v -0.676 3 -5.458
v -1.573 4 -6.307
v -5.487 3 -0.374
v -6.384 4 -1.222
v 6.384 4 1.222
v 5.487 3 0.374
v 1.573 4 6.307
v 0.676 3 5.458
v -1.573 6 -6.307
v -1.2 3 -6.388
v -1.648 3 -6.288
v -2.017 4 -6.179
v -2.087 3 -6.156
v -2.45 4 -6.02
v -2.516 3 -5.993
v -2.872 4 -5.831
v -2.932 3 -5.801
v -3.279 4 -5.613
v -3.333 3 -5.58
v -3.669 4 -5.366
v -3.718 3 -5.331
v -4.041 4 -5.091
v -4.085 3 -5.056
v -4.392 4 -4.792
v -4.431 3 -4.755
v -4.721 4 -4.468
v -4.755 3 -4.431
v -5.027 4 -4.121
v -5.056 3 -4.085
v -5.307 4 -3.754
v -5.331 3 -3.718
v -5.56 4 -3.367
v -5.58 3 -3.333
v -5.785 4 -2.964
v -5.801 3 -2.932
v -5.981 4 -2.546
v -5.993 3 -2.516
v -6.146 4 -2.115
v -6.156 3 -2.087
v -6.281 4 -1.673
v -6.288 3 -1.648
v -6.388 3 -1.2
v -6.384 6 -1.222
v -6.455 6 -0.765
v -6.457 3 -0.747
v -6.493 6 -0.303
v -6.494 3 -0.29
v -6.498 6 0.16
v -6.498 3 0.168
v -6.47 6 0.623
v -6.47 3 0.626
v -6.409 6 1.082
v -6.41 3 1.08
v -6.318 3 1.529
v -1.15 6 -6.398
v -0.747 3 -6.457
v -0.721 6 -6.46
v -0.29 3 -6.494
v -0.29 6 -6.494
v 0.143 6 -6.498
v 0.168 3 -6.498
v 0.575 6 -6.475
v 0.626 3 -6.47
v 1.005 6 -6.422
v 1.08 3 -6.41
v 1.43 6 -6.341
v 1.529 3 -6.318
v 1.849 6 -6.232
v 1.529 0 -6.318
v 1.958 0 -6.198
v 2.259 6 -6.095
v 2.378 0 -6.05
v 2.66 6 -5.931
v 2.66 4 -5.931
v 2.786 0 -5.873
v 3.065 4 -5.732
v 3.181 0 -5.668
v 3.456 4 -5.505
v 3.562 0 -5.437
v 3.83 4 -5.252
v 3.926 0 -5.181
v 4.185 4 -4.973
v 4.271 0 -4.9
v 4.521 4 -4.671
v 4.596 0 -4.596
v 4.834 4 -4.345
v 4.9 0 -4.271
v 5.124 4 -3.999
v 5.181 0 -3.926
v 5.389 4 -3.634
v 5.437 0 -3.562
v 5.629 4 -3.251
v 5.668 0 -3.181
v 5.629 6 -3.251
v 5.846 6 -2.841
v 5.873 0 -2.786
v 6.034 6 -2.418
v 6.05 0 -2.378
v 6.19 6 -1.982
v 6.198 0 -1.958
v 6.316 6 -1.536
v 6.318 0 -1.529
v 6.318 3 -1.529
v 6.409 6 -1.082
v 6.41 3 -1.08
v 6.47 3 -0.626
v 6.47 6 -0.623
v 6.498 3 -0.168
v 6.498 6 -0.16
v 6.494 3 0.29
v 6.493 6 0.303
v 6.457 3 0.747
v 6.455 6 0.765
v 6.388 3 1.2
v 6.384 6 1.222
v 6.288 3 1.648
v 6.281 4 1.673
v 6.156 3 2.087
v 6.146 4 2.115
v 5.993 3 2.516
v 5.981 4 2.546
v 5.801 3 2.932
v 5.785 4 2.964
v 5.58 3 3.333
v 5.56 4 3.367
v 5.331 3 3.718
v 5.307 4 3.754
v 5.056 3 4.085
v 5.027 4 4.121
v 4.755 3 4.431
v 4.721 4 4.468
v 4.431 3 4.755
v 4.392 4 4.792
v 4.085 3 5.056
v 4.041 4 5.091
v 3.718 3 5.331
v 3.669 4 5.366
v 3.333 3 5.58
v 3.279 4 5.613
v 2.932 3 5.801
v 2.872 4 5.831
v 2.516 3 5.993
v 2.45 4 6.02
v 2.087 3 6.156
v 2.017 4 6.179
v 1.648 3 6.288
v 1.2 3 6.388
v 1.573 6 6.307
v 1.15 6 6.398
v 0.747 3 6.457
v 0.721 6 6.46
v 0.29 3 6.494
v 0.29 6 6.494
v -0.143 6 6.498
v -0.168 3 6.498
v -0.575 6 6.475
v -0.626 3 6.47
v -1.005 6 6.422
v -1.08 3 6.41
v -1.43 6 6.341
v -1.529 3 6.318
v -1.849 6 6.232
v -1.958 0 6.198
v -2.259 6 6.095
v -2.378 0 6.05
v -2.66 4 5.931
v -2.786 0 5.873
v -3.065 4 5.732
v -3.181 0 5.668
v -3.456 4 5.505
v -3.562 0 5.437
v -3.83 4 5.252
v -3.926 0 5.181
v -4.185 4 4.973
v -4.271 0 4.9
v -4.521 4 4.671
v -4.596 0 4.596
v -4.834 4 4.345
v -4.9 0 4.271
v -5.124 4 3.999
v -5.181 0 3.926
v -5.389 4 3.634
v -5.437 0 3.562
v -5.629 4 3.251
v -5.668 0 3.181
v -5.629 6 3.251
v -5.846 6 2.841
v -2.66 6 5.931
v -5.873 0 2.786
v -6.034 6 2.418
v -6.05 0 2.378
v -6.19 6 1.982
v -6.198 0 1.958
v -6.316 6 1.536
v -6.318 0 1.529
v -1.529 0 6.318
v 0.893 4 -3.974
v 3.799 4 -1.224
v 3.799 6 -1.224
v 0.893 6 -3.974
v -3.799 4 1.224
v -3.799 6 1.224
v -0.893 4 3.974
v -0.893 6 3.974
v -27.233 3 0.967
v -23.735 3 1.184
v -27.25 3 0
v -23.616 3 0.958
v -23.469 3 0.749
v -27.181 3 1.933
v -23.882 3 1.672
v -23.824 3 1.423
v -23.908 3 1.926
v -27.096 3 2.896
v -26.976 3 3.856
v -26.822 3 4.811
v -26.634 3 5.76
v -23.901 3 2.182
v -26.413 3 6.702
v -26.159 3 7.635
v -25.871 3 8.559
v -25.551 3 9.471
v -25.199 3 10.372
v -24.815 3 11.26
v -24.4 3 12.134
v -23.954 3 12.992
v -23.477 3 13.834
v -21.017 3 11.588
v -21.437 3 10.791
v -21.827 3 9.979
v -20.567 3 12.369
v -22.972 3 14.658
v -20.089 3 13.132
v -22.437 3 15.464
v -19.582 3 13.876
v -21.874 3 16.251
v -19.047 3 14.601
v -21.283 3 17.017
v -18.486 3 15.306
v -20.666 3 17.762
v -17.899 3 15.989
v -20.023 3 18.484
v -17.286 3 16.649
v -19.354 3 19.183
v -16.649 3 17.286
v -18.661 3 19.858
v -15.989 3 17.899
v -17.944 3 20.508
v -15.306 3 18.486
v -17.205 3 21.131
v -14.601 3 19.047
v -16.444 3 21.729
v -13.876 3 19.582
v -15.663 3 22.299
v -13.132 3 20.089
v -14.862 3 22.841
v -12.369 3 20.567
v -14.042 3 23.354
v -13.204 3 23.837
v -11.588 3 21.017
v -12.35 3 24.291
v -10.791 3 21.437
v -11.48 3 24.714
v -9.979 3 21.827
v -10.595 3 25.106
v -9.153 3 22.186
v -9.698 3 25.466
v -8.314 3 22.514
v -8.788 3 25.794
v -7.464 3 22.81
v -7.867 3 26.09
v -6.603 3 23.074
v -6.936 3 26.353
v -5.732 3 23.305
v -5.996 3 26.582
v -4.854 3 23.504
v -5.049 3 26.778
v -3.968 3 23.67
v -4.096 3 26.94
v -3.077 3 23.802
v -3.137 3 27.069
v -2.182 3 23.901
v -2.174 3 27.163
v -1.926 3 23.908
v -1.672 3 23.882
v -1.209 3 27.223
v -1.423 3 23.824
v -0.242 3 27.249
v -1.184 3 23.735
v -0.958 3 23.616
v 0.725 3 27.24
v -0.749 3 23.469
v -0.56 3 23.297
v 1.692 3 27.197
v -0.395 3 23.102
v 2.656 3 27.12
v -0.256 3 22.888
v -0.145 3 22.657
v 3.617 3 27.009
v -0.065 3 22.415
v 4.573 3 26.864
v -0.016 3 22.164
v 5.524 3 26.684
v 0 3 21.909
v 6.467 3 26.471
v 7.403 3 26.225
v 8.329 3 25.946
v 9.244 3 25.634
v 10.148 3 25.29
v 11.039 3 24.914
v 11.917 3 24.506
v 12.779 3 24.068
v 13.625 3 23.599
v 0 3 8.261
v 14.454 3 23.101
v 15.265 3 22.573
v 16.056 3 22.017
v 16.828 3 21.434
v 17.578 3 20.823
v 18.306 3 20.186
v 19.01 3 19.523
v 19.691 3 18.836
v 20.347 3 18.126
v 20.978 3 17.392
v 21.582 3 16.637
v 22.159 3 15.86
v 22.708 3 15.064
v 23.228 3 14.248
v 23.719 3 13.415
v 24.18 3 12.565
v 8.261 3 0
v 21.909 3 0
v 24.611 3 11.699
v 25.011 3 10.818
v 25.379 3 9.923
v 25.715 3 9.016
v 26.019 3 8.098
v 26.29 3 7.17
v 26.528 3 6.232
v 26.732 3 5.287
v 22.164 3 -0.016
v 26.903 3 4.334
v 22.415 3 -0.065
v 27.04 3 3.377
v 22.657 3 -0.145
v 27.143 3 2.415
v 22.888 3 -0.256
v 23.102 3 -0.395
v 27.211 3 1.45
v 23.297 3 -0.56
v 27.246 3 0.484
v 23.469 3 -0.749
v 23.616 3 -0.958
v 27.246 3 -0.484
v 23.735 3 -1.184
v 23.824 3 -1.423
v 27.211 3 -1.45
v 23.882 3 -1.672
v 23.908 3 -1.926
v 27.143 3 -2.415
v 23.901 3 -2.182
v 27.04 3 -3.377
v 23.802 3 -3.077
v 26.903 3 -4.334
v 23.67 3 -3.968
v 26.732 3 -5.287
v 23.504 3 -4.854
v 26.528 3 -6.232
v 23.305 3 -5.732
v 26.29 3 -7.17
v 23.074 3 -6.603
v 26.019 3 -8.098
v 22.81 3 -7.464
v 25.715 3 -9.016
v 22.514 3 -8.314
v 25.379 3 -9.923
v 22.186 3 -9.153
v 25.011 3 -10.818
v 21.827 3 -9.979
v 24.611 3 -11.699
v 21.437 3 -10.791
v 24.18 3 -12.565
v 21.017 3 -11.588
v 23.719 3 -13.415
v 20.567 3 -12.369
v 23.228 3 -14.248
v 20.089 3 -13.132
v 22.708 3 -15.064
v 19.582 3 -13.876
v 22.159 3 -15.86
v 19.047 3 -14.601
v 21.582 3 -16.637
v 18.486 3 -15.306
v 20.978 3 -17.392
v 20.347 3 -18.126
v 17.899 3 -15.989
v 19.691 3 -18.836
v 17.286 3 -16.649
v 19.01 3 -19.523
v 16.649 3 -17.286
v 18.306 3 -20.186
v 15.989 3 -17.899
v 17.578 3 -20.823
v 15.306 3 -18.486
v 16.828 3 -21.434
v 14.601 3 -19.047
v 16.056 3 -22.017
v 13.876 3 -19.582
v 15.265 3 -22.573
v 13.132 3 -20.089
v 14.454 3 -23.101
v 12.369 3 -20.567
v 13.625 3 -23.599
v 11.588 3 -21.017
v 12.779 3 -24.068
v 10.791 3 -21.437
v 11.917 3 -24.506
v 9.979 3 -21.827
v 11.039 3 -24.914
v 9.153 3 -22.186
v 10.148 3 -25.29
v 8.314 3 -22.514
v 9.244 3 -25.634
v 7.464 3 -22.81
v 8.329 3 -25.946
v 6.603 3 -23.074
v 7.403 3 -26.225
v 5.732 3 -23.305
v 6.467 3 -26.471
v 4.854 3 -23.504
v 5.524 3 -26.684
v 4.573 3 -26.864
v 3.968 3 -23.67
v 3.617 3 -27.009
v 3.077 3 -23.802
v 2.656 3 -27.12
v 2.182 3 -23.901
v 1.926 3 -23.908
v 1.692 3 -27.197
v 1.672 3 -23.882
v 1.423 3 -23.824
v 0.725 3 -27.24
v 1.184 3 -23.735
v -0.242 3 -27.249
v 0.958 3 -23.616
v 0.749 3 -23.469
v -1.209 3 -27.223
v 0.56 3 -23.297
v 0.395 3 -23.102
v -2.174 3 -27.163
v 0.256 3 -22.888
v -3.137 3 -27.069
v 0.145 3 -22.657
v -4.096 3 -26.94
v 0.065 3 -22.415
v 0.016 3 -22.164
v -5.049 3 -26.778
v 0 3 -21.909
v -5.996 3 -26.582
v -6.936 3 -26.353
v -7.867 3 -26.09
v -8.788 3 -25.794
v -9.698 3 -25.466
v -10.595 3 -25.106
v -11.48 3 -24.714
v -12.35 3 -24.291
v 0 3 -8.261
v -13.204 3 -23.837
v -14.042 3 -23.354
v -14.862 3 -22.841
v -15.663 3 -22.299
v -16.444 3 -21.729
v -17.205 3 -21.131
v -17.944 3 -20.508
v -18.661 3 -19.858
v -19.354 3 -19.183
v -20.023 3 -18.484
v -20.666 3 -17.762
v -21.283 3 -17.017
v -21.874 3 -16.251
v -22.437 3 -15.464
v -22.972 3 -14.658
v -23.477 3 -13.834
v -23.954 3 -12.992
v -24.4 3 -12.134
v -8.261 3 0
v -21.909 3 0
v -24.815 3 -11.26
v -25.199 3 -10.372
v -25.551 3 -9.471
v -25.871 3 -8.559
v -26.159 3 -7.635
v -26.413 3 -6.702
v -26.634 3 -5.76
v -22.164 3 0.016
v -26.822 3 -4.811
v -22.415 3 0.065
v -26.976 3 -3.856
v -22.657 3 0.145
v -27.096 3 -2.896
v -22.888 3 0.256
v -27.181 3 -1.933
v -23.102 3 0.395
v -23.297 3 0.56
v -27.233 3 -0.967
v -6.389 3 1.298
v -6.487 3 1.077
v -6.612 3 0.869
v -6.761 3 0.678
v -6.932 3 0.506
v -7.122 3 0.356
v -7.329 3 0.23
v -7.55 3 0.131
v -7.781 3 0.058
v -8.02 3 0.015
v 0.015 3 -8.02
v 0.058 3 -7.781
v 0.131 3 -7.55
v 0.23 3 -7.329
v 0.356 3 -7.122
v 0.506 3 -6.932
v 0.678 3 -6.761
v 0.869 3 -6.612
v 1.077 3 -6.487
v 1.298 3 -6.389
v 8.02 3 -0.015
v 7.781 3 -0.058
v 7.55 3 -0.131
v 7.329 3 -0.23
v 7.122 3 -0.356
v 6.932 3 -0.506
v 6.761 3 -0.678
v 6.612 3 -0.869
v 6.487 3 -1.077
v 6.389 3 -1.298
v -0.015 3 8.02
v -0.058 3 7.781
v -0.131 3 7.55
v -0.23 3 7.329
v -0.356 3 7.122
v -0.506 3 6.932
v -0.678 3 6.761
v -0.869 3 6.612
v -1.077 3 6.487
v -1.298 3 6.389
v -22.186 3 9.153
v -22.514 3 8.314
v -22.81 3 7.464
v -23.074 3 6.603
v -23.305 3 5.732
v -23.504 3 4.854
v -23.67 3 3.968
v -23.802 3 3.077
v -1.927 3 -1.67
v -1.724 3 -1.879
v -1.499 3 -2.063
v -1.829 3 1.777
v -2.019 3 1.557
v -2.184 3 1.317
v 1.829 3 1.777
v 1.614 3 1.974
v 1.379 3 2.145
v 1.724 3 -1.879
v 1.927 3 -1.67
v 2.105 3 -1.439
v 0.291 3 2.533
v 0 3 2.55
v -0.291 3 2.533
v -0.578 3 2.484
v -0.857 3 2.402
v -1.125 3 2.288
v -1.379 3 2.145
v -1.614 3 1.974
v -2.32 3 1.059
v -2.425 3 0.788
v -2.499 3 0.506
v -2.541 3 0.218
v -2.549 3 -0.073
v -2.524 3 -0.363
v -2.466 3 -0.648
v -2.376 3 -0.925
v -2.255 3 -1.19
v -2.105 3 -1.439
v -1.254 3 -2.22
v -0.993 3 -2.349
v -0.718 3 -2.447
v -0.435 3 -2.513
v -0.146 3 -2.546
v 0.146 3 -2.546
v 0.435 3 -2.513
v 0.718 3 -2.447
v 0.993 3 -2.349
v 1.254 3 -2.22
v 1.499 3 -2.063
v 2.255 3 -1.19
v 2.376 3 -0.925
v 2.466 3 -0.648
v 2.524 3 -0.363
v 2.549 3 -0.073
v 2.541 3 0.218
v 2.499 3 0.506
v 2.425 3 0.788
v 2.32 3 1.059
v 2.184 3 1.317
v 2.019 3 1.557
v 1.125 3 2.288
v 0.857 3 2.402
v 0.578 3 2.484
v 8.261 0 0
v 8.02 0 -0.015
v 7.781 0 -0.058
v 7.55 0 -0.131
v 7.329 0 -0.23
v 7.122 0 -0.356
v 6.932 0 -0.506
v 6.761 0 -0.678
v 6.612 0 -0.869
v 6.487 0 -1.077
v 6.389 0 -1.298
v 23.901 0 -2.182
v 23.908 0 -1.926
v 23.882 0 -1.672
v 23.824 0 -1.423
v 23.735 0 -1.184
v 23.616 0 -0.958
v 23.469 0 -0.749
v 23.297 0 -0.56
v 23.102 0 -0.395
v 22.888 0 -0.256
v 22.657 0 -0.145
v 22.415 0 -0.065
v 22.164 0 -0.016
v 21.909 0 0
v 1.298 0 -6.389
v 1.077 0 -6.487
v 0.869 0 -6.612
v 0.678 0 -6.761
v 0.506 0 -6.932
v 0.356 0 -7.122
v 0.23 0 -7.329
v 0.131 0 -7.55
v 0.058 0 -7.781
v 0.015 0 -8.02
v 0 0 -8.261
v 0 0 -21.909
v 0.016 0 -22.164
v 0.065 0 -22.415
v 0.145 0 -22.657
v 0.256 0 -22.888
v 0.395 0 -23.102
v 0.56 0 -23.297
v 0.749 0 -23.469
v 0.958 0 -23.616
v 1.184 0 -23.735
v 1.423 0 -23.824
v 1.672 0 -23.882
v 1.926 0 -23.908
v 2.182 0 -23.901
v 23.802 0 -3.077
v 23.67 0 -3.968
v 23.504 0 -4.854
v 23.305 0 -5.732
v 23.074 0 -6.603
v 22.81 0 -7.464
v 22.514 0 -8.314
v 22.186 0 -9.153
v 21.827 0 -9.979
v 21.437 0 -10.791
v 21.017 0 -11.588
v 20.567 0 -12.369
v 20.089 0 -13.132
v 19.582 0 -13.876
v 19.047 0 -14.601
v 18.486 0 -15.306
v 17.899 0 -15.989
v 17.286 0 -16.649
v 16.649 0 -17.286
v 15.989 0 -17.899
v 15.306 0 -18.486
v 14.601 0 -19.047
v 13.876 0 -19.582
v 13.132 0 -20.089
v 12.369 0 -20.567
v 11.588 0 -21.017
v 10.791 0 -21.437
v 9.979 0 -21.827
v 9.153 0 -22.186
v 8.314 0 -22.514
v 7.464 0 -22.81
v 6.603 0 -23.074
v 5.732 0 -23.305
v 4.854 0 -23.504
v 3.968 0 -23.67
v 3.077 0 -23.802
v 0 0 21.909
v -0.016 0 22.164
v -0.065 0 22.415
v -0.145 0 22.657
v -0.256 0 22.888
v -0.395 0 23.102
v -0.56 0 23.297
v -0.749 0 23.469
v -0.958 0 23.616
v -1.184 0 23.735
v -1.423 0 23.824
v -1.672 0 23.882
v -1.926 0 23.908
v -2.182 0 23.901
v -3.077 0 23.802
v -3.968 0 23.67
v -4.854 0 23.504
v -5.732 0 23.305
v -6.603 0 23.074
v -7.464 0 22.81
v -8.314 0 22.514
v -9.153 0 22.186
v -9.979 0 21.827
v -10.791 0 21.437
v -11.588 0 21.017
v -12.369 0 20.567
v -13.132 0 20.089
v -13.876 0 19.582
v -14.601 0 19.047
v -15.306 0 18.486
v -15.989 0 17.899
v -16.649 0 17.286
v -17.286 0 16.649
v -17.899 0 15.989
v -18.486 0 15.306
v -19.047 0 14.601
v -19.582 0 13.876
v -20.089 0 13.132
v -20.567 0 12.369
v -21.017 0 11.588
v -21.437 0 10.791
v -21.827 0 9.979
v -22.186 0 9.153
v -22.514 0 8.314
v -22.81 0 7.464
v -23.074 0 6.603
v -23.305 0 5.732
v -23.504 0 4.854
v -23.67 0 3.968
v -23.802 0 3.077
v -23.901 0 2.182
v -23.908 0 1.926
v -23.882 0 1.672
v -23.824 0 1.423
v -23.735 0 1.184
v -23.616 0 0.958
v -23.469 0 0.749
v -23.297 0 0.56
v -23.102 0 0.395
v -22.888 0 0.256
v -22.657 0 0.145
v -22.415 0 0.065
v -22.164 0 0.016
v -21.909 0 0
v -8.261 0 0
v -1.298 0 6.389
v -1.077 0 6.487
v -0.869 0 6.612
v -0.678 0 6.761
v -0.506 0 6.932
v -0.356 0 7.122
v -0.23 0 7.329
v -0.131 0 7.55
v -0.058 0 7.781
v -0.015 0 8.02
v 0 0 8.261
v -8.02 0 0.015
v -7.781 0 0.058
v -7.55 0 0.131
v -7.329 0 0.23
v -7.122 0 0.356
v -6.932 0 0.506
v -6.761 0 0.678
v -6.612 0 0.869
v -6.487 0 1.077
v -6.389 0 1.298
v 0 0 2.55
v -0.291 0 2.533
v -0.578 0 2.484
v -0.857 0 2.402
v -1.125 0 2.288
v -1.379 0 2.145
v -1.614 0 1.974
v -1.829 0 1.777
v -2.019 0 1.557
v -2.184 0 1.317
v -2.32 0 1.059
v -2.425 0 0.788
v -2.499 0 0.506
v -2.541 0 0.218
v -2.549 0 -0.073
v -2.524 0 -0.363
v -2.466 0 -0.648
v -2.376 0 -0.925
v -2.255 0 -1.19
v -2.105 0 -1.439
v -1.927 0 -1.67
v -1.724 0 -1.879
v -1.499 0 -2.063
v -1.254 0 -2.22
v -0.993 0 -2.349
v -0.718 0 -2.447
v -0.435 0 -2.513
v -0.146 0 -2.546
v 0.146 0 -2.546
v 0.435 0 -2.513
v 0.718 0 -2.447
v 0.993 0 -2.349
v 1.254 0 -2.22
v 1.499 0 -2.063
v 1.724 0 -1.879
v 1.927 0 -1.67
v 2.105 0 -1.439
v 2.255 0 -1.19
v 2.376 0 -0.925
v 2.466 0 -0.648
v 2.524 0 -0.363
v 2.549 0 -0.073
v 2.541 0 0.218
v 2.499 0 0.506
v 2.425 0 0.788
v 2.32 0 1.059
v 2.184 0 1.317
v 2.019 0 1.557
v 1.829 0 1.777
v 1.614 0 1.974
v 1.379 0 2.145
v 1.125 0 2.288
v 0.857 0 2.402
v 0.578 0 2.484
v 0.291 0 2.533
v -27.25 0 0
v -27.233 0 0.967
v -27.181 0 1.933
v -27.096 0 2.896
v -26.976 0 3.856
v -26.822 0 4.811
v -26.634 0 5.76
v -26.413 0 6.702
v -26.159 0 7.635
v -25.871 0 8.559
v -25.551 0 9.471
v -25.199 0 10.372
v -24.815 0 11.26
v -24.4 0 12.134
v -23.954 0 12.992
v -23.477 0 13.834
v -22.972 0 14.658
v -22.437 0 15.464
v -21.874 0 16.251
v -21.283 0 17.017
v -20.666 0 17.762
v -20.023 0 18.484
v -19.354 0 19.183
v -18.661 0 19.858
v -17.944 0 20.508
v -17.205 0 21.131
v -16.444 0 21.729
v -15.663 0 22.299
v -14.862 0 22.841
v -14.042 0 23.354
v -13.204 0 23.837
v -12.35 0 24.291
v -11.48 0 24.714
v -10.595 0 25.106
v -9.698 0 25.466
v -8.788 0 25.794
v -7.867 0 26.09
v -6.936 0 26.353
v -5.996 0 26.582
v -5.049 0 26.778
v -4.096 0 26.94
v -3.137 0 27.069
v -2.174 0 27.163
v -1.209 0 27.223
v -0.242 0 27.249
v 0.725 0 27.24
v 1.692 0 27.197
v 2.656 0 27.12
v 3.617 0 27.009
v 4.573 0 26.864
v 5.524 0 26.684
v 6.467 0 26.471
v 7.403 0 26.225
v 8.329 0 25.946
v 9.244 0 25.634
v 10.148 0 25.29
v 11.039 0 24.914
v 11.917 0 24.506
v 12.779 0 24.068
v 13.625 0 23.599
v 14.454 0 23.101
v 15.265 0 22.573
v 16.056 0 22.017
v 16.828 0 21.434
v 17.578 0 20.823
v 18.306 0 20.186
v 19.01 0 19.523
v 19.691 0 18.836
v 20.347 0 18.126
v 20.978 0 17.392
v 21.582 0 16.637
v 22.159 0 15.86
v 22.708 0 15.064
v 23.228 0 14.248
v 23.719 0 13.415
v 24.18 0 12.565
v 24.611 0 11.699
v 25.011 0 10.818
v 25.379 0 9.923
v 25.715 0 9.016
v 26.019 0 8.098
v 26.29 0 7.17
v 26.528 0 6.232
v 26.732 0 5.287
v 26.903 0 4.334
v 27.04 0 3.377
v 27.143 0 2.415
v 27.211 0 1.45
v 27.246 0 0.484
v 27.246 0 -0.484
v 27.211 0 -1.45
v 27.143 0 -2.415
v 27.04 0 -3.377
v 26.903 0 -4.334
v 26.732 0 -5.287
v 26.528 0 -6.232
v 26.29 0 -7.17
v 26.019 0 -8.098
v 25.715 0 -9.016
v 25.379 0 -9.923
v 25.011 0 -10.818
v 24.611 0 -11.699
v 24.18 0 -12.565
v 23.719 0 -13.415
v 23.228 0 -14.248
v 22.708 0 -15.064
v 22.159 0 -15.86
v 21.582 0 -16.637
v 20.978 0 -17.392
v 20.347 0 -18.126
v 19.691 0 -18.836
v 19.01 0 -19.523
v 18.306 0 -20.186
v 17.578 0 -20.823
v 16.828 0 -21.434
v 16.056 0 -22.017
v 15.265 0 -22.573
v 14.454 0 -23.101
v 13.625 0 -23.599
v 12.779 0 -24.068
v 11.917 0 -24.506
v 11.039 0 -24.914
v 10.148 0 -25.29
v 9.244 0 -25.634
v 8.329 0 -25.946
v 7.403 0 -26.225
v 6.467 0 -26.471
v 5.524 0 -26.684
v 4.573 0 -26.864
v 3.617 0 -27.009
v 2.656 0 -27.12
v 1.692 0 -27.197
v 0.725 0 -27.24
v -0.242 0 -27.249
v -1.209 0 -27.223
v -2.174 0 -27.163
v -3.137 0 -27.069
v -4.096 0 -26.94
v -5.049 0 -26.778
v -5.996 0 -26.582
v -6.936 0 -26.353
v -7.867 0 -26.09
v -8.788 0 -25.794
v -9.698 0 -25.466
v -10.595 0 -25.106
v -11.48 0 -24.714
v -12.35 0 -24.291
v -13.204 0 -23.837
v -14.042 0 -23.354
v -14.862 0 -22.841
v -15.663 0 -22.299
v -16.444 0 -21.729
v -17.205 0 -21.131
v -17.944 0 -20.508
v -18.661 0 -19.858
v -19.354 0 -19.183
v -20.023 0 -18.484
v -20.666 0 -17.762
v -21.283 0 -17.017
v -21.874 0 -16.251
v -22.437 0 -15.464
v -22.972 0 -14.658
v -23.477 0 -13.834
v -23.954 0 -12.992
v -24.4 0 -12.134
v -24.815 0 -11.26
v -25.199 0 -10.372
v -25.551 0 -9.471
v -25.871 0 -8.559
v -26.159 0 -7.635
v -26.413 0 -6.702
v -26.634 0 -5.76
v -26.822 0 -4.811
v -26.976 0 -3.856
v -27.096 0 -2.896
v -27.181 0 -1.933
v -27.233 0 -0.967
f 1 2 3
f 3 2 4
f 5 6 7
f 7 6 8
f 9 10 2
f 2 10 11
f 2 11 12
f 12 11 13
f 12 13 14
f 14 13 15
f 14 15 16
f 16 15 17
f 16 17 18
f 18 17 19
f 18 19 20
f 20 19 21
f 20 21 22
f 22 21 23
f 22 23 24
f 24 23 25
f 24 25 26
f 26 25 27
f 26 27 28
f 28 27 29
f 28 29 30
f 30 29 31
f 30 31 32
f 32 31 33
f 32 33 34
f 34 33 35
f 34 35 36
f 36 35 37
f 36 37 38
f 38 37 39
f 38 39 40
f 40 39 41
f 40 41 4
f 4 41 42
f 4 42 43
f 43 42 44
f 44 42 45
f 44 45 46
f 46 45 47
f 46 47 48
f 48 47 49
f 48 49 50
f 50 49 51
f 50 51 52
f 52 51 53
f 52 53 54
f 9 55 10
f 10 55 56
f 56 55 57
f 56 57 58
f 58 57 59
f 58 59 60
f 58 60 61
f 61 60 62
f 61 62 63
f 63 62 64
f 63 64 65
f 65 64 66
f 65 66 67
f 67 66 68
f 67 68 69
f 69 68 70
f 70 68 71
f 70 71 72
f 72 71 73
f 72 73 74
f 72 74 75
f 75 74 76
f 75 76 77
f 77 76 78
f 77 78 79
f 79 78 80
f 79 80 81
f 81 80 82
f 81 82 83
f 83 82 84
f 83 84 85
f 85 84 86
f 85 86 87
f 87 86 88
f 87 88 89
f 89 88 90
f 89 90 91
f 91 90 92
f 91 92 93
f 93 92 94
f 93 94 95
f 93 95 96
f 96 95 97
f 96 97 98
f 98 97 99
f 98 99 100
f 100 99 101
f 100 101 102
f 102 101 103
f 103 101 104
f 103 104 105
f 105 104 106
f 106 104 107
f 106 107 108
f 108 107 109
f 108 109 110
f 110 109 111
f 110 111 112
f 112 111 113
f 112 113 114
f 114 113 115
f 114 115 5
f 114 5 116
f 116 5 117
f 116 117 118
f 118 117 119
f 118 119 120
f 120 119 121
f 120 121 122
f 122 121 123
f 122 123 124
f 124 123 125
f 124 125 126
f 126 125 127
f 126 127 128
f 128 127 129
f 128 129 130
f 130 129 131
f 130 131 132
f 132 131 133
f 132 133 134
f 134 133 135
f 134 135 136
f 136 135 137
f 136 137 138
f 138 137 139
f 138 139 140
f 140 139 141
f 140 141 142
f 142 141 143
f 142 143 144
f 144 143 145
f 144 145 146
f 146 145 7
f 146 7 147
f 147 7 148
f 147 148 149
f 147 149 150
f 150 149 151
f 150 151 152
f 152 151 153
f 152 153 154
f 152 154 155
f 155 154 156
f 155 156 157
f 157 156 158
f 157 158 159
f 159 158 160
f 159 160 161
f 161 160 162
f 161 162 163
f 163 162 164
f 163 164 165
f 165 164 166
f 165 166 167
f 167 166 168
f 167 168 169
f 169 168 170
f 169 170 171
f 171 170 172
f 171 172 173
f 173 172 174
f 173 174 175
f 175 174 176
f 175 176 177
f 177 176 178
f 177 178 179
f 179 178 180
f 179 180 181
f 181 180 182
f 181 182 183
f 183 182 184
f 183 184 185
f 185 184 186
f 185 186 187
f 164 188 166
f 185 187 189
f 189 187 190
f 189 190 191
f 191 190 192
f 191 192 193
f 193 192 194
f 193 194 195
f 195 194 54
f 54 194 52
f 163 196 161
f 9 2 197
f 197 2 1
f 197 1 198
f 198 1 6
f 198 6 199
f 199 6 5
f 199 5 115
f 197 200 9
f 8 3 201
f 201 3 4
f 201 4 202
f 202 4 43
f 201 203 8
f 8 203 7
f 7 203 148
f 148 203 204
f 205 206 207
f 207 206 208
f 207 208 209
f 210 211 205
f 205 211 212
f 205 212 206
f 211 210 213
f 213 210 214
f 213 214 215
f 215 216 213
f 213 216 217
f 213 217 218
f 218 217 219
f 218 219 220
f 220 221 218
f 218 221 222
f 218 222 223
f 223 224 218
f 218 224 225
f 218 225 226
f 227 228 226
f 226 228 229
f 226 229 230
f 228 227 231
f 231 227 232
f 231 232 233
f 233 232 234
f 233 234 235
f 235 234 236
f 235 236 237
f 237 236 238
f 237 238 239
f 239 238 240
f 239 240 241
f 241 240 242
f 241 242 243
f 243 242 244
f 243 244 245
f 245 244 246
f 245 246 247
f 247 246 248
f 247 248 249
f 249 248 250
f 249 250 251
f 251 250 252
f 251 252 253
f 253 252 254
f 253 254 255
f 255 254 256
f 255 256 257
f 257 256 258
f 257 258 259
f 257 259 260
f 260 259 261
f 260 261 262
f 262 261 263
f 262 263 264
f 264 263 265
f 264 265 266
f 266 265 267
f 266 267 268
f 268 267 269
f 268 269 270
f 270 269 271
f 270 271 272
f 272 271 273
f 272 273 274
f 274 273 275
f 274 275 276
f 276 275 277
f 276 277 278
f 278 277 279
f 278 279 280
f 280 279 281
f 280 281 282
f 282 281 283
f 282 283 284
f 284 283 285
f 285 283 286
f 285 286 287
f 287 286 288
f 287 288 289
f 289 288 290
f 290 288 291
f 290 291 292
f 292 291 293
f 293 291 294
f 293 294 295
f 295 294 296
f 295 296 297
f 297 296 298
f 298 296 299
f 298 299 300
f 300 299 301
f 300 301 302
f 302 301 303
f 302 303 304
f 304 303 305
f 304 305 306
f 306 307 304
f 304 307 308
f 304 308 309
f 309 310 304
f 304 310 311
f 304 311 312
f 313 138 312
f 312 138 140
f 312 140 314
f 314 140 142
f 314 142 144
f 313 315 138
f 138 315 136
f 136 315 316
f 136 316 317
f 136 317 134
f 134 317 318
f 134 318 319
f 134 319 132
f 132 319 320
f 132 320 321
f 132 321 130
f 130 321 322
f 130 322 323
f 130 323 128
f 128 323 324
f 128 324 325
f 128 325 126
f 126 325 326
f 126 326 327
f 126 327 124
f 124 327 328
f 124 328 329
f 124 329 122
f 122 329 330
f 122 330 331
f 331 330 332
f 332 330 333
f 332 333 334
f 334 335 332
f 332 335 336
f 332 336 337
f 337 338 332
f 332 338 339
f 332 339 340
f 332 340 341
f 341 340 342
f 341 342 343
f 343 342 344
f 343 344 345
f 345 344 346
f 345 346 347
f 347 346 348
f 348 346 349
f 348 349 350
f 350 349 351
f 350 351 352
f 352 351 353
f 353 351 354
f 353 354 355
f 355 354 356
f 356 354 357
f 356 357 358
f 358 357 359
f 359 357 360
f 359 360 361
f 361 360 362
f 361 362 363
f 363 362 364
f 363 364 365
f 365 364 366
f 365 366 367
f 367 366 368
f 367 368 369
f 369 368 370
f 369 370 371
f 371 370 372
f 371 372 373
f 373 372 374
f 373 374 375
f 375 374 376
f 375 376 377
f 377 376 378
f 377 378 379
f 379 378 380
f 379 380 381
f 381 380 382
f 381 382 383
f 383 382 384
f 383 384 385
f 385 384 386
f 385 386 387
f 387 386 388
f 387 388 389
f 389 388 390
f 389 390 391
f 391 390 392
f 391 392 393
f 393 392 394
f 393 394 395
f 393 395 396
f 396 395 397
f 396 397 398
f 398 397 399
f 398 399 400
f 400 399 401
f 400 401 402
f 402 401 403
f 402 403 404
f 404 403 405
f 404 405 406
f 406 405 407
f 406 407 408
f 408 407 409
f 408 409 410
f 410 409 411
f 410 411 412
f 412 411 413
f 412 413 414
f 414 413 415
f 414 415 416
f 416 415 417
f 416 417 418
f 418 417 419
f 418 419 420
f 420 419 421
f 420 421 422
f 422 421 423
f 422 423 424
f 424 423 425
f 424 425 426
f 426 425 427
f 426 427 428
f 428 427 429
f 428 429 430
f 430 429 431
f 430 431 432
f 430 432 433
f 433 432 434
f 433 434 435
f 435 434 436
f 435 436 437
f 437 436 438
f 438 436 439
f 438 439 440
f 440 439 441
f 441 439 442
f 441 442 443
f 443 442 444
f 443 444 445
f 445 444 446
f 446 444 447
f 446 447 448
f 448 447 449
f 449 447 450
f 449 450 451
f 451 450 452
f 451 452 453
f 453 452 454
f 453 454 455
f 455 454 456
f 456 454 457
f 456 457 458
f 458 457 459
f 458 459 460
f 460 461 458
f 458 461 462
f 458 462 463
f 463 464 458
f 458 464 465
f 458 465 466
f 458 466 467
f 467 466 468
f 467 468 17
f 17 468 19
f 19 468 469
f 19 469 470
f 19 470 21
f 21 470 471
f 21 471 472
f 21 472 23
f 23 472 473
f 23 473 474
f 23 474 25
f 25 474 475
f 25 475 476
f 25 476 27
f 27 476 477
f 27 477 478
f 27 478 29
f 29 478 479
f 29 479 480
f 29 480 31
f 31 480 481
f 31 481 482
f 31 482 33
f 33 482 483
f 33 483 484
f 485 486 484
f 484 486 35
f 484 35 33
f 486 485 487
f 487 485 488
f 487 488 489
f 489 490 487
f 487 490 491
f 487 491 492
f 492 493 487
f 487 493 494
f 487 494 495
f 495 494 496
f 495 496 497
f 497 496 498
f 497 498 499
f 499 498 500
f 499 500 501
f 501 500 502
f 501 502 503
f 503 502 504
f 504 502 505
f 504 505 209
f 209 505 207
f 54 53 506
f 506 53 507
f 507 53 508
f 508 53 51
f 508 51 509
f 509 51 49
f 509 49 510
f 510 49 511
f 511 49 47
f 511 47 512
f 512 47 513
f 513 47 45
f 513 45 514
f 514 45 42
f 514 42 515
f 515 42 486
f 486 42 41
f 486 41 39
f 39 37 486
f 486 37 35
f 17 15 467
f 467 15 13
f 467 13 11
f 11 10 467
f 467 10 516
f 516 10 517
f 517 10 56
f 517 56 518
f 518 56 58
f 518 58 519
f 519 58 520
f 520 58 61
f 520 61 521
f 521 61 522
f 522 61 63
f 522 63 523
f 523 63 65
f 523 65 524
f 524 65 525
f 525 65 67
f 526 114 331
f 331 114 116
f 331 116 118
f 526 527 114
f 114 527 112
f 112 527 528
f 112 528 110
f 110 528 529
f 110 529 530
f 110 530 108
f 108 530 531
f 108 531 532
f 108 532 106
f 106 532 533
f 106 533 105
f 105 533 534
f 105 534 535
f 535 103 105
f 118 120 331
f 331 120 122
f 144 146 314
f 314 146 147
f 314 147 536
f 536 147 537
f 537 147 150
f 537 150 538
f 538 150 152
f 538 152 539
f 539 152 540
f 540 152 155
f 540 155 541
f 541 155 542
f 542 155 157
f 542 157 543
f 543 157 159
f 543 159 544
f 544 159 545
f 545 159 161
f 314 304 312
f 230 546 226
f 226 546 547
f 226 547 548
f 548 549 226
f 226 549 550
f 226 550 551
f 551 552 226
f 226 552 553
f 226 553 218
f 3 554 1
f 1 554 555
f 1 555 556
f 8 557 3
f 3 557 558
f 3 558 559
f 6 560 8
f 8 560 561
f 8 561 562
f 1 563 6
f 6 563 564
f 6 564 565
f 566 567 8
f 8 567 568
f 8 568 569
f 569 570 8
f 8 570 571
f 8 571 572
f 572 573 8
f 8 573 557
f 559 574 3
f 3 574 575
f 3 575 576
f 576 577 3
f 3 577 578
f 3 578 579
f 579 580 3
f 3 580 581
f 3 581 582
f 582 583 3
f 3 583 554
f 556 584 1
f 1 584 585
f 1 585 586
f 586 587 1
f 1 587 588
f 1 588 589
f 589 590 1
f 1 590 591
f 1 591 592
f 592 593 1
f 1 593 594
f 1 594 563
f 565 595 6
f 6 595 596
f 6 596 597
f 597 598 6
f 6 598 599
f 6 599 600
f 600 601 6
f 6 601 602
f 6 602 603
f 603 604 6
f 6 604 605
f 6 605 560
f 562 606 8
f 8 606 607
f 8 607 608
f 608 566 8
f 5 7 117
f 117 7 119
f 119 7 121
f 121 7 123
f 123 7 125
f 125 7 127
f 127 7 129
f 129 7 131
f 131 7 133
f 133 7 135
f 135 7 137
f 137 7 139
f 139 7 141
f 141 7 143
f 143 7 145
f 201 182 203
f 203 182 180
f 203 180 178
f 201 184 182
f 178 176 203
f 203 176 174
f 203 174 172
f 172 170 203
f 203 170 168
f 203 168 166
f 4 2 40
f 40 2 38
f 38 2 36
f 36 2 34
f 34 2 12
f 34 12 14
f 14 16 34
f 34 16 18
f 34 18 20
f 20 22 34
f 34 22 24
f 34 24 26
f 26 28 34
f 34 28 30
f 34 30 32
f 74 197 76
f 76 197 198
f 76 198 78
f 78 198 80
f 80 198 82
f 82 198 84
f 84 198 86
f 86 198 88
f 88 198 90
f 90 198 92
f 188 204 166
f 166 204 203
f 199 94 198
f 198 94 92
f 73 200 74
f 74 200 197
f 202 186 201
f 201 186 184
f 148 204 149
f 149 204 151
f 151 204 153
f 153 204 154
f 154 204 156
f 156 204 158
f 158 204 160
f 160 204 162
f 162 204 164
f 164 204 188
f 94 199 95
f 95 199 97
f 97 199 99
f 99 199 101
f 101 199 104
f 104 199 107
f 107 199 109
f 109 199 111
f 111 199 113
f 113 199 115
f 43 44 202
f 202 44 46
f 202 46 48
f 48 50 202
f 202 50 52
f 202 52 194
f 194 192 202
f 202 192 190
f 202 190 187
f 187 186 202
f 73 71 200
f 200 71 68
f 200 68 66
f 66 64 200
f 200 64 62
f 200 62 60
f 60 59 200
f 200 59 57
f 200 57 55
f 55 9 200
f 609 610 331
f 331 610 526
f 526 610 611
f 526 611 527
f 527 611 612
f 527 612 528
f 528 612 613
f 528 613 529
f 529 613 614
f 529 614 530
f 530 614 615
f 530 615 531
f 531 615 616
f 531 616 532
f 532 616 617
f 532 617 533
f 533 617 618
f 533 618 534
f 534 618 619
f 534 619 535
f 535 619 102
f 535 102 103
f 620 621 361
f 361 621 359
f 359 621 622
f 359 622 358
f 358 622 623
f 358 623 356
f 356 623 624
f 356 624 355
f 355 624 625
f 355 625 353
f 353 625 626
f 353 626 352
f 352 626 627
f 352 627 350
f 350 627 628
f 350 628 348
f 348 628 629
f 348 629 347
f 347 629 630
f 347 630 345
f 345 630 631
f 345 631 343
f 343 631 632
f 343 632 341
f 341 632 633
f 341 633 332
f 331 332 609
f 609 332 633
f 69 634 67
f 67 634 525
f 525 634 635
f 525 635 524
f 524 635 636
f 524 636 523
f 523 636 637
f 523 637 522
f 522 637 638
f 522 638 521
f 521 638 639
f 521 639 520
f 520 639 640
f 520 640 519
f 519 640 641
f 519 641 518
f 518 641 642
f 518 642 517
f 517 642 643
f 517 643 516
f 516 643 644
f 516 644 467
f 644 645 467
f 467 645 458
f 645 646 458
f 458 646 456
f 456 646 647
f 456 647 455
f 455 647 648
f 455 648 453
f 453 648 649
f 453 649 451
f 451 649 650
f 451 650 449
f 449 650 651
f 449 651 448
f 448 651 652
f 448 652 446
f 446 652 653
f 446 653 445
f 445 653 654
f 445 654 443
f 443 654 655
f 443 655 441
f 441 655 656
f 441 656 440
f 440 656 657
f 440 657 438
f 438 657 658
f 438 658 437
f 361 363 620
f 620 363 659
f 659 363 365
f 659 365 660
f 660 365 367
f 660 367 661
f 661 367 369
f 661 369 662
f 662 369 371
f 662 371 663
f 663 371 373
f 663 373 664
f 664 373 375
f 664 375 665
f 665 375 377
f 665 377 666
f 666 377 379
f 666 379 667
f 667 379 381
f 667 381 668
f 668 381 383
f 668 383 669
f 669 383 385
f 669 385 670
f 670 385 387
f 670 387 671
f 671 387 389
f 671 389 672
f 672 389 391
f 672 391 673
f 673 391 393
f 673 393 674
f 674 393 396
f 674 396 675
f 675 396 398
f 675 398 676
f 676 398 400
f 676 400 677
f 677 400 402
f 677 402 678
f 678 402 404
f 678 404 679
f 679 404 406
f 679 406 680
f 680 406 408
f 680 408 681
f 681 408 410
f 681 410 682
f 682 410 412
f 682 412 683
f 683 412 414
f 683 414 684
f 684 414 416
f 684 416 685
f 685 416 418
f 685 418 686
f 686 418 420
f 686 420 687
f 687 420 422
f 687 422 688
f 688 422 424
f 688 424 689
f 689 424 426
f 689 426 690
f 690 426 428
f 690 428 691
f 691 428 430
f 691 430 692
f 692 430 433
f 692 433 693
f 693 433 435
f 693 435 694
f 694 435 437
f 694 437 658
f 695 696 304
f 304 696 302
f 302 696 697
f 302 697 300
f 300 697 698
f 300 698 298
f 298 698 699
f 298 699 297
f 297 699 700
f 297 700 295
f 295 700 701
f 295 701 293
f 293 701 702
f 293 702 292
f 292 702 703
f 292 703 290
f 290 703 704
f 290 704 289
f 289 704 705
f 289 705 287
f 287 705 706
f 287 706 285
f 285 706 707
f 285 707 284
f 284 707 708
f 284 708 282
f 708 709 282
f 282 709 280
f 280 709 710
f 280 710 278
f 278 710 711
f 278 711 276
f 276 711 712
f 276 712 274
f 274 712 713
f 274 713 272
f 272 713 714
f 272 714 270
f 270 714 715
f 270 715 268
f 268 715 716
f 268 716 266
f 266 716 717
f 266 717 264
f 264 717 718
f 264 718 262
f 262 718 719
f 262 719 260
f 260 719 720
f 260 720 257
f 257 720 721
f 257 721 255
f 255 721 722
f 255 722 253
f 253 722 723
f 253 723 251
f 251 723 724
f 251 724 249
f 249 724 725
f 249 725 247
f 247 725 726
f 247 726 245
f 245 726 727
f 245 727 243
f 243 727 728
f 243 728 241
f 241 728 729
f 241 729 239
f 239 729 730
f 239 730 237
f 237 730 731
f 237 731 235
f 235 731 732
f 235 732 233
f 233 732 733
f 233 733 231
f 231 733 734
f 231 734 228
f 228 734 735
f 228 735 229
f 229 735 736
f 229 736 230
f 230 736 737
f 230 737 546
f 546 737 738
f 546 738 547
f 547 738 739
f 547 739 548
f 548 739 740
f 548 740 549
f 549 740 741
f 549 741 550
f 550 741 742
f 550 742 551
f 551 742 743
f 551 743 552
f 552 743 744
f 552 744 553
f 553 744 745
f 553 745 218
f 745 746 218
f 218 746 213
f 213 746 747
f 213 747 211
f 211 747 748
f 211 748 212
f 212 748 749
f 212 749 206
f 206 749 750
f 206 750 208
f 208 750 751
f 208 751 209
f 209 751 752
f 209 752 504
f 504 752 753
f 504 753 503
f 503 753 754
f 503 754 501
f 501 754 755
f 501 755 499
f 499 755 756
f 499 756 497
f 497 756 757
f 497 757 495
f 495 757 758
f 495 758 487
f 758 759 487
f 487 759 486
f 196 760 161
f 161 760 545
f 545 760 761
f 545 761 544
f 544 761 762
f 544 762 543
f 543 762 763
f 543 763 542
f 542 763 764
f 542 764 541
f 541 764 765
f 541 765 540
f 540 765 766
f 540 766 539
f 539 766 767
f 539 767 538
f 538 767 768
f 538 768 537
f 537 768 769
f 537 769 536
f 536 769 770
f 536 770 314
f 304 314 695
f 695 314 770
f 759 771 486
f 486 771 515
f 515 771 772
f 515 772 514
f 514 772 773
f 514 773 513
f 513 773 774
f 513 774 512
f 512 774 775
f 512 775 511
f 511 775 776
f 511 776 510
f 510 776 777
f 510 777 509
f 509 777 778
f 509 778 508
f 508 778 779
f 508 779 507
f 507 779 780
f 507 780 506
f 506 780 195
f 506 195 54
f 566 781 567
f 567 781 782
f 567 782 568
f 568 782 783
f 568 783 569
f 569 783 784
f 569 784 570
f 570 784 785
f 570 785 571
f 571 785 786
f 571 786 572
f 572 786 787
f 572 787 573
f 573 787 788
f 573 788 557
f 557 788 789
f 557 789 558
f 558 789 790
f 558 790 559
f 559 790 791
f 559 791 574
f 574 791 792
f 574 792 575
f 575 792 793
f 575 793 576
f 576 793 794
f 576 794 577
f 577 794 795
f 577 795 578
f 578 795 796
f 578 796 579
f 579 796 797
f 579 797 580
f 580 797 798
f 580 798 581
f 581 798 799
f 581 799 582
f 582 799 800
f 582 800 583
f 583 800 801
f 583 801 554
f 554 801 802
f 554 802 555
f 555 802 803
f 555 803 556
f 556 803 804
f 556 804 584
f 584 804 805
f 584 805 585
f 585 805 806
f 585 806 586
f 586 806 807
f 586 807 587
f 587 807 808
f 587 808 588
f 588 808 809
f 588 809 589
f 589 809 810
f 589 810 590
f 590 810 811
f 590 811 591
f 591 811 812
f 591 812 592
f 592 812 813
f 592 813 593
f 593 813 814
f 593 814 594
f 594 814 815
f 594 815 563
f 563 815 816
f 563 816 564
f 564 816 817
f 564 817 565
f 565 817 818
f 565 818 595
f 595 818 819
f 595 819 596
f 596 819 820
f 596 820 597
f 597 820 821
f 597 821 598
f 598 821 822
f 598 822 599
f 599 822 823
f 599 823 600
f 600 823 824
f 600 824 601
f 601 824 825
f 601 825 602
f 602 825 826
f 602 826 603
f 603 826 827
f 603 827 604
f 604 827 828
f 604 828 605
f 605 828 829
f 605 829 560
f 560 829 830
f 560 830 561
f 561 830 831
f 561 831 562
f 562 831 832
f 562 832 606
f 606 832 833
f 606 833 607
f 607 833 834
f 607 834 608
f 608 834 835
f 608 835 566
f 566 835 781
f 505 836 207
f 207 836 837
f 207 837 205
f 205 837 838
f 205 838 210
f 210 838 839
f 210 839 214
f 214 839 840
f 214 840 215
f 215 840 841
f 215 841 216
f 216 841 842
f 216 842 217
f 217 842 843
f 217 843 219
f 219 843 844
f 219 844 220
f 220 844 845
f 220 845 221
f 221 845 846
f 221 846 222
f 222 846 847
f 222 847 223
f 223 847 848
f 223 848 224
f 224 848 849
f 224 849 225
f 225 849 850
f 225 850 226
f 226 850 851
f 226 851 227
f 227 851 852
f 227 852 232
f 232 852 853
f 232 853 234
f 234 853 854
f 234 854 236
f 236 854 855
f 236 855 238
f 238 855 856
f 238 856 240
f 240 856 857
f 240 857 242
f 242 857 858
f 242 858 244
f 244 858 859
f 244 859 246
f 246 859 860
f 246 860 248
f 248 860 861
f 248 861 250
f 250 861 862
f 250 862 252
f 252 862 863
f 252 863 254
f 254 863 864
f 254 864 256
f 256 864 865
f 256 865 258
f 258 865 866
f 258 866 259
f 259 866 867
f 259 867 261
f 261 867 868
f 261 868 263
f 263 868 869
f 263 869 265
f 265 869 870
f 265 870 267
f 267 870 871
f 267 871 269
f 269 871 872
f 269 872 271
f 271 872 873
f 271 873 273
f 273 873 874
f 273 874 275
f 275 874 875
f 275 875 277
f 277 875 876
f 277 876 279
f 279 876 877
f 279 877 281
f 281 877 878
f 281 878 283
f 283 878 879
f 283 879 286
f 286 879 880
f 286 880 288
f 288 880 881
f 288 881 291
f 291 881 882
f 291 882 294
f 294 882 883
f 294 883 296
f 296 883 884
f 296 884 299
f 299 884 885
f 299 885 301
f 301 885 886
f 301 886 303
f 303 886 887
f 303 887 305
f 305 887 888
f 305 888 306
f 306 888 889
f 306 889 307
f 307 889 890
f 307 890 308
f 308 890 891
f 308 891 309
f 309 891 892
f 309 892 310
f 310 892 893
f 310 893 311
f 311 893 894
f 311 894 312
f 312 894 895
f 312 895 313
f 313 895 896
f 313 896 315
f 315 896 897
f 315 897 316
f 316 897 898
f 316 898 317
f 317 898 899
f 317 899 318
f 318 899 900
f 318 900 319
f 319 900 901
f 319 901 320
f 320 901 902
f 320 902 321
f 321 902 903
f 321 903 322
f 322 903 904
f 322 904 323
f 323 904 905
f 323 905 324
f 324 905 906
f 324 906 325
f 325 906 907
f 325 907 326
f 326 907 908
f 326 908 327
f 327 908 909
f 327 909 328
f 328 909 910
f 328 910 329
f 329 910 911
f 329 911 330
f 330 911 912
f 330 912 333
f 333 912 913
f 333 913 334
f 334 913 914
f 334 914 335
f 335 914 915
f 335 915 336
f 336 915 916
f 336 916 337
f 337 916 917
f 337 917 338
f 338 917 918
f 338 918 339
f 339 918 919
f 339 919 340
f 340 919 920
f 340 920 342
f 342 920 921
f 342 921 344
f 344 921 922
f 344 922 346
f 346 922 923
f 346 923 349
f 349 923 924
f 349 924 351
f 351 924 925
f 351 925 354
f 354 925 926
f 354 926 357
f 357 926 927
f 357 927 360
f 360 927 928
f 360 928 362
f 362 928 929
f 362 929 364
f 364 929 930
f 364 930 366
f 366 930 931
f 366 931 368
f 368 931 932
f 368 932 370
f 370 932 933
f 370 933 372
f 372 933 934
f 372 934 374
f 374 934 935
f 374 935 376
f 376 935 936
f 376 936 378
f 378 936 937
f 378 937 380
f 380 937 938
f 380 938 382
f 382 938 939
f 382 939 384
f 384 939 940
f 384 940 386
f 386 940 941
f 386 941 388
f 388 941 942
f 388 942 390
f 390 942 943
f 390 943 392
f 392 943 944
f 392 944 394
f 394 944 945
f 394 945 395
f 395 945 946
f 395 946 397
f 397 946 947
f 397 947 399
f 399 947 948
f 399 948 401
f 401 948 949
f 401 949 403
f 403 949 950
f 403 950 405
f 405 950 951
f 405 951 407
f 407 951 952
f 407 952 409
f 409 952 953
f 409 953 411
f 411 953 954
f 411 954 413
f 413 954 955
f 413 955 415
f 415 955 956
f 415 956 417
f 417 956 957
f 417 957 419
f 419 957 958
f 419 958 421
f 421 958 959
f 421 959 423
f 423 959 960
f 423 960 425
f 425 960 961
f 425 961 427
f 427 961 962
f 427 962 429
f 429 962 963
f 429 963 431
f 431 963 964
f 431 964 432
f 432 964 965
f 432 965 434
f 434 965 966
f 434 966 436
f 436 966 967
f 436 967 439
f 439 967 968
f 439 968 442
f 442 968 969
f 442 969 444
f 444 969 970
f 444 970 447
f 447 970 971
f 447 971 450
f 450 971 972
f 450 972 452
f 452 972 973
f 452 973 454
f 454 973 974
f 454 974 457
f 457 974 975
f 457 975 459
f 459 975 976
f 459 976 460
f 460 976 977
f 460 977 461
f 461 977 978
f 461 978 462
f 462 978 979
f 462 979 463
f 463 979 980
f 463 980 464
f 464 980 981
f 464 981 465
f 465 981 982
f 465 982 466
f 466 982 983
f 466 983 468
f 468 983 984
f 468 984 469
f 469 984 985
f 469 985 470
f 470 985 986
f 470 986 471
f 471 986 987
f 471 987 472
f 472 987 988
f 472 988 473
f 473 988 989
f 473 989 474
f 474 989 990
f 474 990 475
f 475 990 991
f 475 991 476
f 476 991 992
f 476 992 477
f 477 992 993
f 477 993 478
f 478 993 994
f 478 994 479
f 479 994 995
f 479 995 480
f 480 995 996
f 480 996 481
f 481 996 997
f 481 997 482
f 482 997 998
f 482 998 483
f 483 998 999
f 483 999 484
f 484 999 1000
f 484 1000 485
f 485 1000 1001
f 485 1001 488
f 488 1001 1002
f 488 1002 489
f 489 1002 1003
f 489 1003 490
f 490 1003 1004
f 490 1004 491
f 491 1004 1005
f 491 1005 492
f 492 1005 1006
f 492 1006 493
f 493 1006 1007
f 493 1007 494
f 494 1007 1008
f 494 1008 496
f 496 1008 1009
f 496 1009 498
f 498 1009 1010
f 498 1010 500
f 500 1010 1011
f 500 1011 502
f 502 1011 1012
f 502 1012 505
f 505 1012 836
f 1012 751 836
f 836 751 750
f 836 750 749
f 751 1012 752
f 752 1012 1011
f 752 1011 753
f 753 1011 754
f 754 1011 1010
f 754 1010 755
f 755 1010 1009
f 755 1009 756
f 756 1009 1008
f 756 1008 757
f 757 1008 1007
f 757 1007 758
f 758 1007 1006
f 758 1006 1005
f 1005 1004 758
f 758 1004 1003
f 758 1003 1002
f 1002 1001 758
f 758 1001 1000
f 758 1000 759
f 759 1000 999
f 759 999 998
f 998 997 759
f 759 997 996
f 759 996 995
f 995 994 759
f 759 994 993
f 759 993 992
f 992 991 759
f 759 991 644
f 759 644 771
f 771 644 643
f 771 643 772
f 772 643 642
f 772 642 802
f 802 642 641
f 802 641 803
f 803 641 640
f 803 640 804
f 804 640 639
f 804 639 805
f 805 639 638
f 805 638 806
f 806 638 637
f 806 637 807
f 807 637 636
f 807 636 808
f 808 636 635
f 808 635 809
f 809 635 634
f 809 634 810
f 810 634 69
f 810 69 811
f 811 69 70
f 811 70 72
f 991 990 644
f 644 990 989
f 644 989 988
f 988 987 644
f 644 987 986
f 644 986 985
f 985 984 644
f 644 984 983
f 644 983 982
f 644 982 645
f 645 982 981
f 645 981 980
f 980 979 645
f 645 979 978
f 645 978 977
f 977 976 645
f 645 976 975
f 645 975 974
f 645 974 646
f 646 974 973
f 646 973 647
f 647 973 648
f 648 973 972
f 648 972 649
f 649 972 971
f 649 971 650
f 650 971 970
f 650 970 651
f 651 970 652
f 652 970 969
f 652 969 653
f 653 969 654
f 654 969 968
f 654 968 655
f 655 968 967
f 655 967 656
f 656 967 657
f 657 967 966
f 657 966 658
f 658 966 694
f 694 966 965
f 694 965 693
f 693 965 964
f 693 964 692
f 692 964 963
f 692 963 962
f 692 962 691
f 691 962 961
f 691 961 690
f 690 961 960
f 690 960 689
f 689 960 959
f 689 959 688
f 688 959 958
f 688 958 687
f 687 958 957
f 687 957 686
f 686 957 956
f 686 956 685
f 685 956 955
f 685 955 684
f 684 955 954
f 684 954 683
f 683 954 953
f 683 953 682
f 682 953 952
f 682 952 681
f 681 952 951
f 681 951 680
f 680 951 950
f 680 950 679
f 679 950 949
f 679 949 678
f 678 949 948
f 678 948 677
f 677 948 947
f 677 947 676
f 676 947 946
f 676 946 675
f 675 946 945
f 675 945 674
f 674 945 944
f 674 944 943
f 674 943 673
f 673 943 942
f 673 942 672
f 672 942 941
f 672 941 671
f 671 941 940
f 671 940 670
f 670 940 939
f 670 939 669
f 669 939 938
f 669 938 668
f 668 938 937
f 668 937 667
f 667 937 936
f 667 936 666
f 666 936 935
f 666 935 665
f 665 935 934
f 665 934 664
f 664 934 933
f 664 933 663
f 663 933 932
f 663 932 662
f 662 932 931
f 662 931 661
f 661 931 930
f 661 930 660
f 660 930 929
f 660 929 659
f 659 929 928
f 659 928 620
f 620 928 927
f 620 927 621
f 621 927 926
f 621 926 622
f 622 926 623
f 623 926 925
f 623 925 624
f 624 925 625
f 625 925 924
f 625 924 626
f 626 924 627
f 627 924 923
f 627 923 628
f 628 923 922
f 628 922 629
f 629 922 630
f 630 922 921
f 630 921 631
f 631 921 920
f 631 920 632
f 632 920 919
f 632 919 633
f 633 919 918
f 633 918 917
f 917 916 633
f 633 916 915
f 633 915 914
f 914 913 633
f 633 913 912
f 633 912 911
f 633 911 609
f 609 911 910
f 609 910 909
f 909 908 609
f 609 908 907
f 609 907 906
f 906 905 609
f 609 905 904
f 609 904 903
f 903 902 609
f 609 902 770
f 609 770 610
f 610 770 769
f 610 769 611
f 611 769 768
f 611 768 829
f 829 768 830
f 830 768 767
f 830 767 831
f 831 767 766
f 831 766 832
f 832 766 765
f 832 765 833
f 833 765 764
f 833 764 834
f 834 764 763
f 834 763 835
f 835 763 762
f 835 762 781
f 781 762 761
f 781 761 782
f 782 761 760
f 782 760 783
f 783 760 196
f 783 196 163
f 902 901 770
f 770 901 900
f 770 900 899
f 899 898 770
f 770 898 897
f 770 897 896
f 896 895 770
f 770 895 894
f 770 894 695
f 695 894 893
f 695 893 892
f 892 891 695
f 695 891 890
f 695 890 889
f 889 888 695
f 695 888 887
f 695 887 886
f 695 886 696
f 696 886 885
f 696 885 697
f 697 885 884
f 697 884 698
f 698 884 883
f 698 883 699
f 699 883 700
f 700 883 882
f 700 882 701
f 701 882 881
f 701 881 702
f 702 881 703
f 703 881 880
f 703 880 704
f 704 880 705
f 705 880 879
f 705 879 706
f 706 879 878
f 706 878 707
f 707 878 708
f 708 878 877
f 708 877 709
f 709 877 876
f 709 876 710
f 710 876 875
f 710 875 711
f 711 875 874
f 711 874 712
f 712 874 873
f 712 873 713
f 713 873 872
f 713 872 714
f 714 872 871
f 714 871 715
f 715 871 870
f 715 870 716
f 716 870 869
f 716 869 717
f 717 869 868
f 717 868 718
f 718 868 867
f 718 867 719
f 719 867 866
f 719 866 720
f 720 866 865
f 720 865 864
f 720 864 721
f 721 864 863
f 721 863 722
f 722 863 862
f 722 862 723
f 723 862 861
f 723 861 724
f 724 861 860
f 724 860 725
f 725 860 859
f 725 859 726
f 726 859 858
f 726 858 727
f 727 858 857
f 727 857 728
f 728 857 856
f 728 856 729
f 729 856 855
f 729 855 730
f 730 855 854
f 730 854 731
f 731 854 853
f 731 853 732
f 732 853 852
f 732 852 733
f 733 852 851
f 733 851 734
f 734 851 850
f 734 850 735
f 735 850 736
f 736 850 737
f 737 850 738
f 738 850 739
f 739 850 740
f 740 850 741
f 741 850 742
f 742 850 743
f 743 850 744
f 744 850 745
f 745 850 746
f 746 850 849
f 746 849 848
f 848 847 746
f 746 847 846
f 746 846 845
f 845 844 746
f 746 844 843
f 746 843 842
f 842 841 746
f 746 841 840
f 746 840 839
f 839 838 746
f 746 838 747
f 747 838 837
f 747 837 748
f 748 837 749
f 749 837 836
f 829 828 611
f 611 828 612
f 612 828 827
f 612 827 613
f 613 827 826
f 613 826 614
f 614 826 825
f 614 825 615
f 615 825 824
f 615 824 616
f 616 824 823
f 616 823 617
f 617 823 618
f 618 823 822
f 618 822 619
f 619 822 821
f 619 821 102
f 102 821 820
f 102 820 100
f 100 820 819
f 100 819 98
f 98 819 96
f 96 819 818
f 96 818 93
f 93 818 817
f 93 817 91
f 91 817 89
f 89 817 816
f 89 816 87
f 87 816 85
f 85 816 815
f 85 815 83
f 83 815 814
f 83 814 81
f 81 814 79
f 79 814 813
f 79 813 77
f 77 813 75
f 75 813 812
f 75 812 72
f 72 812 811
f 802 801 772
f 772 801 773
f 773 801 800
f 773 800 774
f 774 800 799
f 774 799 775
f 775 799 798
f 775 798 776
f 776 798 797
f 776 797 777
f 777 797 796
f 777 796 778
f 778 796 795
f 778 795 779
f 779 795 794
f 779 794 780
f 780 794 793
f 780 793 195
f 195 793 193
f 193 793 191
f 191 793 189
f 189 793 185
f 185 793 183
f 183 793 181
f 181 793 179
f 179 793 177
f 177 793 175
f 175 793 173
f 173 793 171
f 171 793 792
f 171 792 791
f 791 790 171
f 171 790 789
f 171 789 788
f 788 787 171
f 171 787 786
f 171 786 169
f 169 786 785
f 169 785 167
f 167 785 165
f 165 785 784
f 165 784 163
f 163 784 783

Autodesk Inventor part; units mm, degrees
ref_plane "YZ Plane" through (0, 0, 0) normal (1, 0, 0) x (0, 1, 0)
ref_plane "XZ Plane" through (0, 0, 0) normal (0, 1, 0) x (-1, 0, 0)
ref_plane "XY Plane" through (0, 0, 0) normal (0, 0, 1) x (1, 0, 0)
sketch "Sketch1" plane through (0, 0, 0) normal (0, 1, 0) x (-1, 0, 0)
  circle A0 centre (0, 0) radius 27.25
  line L0 (0, 0) -> (0, 27.25)
  line L1 (0, 0) -> (0, -27.25)
  line L2 (0, 0) -> (-27.25, 0)
  line L3 (0, 0) -> (27.25, 0)
  circle A1 centre (0, 0) radius 24
  circle A2 centre (0, 0) radius 2.55
  circle A3 centre (0, 0) radius 6.5
  point P0 (24, 0)
  point P1 (2.55, 0)
  point P2 (0, -2.55)
  point P3 (0, -24)
  point P4 (-24, 0)
  point P5 (-2.55, 0)
  point P6 (0, 2.55)
  point P7 (0, 24)
  point P8 (-6.5, 0)
  point P9 (0, -6.5)
  point P10 (6.5, 0)
  point P11 (0, 6.5)
  dimension "d0" = 54.5
  dimension "d1" = 48
  dimension "d2" = 5.1
  dimension "d5" = 13
extrude "Extrusion1" add sketch "Sketch1" along normal blind 3 contours L3 A1 L0 A0 | A0 L1 A1 L3 | L0 A1 L2 A0 | A0 L2 A1 L1 | A1 L1 A3 L3 | L0 A3 L2 A1 | A3 L1 A2 L3 | L3 A2 L0 A3 | L0 A2 L2 A3 | A3 L2 A2 L1
fillet "Fillet1" radius 2 8 edges at (-6.5, 1.5, 0) (0, 1.5, 6.5) (-24, 1.5, 0) (0, 1.5, 24) (0, 1.5, -24) (0, 1.5, -6.5) (24, 1.5, 0) (6.5, 1.5, 0)
sketch "Sketch2" plane through (0, 3, 0) normal (0, 1, 0) x (1, 0, 0)
  circle A0 centre (0, 0) radius 6.5
  dimension "d7" = 13
extrude "Extrusion2" add sketch "Sketch2" along normal blind 3
sketch "Sketch3" plane through (0, 6, 0) normal (0, 1, 0) x (1, 0, 0)
  point P0 (0, 0)
sketch "Sketch4" plane through (0, 6, 0) normal (0, 1, 0) x (1, 0, 0)
  circle A0 centre (0, 0) radius 6.5 projected
  line L0 (5.6288, 3.2506) -> (-2.6597, -5.9309)
  line L1 (-5.6288, -3.2506) -> (2.6597, 5.9309)
  arc A1 (-1.5294, -6.3175) -> (6.3175, 1.5294) centre (0, 0) ccw projected
  line L2 (6.384, -1.2224) -> (-1.5727, 6.3069)
  arc A2 (1.5294, 6.3175) -> (-6.3175, -1.5294) centre (0, 0) ccw projected
  line L3 (-6.384, 1.2224) -> (1.5727, -6.3069)
  point P0 (-3.799, -1.2237)
  point P1 (-0.8928, -3.9737)
  point P2 (3.799, 1.2237)
  point P3 (0.8928, 3.9737)
  point P4 (-1.5727, 6.3069)
  dimension "d10" = 4
  dimension "d11" = 2
  dimension "d12" = 7
  dimension "d13" = 3.5
extrude "Extrusion3" cut sketch "Sketch4" against normal blind 2 contours A0 L3 L0 L2 | L0 L2 L1 A0 | L0 L3 L1 L2 | L0 A0 L1 L3 | L1 L3 A0 L2
sketch "Sketch5" plane through (0, 4, 0) normal (0, 1, 0) x (1, 0, 0)
  arc A0 (1.5727, -6.3069) -> (6.384, -1.2224) centre (0, 0) ccw projected
  line L0 (-3.799, -1.2237) -> (-6.384, 1.2224) projected
  line L1 (1.5727, -6.3069) -> (-6.384, 1.2224)
  arc A1 (-1.5727, 6.3069) -> (-6.384, 1.2224) centre (0, 0) ccw projected
  line L2 (-6.384, 1.2224) -> (-1.5727, 6.3069)
  line L3 (-1.5727, 6.3069) -> (6.384, -1.2224)
  line L4 (6.384, -1.2224) -> (1.5727, -6.3069)
extrude "Extrusion4" cut sketch "Sketch5" against normal blind 1 contours L1 L0 L2 L3 L4
sketch "Sketch7" plane through (-3.799, 4, 1.2237) normal (0.6873266, 0, -0.7263485) x (-0.7263485, 0, -0.6873266)
  line L0 (3.5589, -1) -> (3.5589, 0) projected
  line L1 (-7.3956, -1) -> (3.5589, -1) projected
  line L2 (3.5589, 0) -> (2.3243, -1)
  line L3 (-3.671, -1) -> (3.5589, -1) projected
  line L4 (2.3243, -1) -> (3.5589, -1)
  line L5 (3.5589, -1) -> (3.5589, 0)
  line L6 (-7.3956, 0) -> (-7.3956, 2) projected
  line L7 (-7.3956, -1) -> (3.5589, -1) projected
  line L8 (-7.3956, 0) -> (-6.161, -1)
  line L9 (-7.3956, -1) -> (-5.1497, -1) projected
  line L10 (-6.161, -1) -> (-7.3956, -1)
  line L11 (-7.3956, -1) -> (-7.3956, 0)
  point P0 (-1.9184, -4)
extrude "Extrusion5" add sketch "Sketch7" along normal up to next
equation "\"BendRadius\" = Thickness"
equation "\"BendReliefWidth\" = Thickness"
equation "\"BendReliefDepth\" = 0.5 * Thickness"
equation "\"CornerReliefSize\" = 4 * Thickness"
equation "\"MinimumRemnant\" = 2 * Thickness"
equation "\"TransitionRadius\" = BendRadius"
equation "\"JacobiRadiusSize\" = BendRadius"
equation "\"GapSize\" = Thickness"
equation "\"Thickness\" = 0.5"
properties part number "_3DPrint"
